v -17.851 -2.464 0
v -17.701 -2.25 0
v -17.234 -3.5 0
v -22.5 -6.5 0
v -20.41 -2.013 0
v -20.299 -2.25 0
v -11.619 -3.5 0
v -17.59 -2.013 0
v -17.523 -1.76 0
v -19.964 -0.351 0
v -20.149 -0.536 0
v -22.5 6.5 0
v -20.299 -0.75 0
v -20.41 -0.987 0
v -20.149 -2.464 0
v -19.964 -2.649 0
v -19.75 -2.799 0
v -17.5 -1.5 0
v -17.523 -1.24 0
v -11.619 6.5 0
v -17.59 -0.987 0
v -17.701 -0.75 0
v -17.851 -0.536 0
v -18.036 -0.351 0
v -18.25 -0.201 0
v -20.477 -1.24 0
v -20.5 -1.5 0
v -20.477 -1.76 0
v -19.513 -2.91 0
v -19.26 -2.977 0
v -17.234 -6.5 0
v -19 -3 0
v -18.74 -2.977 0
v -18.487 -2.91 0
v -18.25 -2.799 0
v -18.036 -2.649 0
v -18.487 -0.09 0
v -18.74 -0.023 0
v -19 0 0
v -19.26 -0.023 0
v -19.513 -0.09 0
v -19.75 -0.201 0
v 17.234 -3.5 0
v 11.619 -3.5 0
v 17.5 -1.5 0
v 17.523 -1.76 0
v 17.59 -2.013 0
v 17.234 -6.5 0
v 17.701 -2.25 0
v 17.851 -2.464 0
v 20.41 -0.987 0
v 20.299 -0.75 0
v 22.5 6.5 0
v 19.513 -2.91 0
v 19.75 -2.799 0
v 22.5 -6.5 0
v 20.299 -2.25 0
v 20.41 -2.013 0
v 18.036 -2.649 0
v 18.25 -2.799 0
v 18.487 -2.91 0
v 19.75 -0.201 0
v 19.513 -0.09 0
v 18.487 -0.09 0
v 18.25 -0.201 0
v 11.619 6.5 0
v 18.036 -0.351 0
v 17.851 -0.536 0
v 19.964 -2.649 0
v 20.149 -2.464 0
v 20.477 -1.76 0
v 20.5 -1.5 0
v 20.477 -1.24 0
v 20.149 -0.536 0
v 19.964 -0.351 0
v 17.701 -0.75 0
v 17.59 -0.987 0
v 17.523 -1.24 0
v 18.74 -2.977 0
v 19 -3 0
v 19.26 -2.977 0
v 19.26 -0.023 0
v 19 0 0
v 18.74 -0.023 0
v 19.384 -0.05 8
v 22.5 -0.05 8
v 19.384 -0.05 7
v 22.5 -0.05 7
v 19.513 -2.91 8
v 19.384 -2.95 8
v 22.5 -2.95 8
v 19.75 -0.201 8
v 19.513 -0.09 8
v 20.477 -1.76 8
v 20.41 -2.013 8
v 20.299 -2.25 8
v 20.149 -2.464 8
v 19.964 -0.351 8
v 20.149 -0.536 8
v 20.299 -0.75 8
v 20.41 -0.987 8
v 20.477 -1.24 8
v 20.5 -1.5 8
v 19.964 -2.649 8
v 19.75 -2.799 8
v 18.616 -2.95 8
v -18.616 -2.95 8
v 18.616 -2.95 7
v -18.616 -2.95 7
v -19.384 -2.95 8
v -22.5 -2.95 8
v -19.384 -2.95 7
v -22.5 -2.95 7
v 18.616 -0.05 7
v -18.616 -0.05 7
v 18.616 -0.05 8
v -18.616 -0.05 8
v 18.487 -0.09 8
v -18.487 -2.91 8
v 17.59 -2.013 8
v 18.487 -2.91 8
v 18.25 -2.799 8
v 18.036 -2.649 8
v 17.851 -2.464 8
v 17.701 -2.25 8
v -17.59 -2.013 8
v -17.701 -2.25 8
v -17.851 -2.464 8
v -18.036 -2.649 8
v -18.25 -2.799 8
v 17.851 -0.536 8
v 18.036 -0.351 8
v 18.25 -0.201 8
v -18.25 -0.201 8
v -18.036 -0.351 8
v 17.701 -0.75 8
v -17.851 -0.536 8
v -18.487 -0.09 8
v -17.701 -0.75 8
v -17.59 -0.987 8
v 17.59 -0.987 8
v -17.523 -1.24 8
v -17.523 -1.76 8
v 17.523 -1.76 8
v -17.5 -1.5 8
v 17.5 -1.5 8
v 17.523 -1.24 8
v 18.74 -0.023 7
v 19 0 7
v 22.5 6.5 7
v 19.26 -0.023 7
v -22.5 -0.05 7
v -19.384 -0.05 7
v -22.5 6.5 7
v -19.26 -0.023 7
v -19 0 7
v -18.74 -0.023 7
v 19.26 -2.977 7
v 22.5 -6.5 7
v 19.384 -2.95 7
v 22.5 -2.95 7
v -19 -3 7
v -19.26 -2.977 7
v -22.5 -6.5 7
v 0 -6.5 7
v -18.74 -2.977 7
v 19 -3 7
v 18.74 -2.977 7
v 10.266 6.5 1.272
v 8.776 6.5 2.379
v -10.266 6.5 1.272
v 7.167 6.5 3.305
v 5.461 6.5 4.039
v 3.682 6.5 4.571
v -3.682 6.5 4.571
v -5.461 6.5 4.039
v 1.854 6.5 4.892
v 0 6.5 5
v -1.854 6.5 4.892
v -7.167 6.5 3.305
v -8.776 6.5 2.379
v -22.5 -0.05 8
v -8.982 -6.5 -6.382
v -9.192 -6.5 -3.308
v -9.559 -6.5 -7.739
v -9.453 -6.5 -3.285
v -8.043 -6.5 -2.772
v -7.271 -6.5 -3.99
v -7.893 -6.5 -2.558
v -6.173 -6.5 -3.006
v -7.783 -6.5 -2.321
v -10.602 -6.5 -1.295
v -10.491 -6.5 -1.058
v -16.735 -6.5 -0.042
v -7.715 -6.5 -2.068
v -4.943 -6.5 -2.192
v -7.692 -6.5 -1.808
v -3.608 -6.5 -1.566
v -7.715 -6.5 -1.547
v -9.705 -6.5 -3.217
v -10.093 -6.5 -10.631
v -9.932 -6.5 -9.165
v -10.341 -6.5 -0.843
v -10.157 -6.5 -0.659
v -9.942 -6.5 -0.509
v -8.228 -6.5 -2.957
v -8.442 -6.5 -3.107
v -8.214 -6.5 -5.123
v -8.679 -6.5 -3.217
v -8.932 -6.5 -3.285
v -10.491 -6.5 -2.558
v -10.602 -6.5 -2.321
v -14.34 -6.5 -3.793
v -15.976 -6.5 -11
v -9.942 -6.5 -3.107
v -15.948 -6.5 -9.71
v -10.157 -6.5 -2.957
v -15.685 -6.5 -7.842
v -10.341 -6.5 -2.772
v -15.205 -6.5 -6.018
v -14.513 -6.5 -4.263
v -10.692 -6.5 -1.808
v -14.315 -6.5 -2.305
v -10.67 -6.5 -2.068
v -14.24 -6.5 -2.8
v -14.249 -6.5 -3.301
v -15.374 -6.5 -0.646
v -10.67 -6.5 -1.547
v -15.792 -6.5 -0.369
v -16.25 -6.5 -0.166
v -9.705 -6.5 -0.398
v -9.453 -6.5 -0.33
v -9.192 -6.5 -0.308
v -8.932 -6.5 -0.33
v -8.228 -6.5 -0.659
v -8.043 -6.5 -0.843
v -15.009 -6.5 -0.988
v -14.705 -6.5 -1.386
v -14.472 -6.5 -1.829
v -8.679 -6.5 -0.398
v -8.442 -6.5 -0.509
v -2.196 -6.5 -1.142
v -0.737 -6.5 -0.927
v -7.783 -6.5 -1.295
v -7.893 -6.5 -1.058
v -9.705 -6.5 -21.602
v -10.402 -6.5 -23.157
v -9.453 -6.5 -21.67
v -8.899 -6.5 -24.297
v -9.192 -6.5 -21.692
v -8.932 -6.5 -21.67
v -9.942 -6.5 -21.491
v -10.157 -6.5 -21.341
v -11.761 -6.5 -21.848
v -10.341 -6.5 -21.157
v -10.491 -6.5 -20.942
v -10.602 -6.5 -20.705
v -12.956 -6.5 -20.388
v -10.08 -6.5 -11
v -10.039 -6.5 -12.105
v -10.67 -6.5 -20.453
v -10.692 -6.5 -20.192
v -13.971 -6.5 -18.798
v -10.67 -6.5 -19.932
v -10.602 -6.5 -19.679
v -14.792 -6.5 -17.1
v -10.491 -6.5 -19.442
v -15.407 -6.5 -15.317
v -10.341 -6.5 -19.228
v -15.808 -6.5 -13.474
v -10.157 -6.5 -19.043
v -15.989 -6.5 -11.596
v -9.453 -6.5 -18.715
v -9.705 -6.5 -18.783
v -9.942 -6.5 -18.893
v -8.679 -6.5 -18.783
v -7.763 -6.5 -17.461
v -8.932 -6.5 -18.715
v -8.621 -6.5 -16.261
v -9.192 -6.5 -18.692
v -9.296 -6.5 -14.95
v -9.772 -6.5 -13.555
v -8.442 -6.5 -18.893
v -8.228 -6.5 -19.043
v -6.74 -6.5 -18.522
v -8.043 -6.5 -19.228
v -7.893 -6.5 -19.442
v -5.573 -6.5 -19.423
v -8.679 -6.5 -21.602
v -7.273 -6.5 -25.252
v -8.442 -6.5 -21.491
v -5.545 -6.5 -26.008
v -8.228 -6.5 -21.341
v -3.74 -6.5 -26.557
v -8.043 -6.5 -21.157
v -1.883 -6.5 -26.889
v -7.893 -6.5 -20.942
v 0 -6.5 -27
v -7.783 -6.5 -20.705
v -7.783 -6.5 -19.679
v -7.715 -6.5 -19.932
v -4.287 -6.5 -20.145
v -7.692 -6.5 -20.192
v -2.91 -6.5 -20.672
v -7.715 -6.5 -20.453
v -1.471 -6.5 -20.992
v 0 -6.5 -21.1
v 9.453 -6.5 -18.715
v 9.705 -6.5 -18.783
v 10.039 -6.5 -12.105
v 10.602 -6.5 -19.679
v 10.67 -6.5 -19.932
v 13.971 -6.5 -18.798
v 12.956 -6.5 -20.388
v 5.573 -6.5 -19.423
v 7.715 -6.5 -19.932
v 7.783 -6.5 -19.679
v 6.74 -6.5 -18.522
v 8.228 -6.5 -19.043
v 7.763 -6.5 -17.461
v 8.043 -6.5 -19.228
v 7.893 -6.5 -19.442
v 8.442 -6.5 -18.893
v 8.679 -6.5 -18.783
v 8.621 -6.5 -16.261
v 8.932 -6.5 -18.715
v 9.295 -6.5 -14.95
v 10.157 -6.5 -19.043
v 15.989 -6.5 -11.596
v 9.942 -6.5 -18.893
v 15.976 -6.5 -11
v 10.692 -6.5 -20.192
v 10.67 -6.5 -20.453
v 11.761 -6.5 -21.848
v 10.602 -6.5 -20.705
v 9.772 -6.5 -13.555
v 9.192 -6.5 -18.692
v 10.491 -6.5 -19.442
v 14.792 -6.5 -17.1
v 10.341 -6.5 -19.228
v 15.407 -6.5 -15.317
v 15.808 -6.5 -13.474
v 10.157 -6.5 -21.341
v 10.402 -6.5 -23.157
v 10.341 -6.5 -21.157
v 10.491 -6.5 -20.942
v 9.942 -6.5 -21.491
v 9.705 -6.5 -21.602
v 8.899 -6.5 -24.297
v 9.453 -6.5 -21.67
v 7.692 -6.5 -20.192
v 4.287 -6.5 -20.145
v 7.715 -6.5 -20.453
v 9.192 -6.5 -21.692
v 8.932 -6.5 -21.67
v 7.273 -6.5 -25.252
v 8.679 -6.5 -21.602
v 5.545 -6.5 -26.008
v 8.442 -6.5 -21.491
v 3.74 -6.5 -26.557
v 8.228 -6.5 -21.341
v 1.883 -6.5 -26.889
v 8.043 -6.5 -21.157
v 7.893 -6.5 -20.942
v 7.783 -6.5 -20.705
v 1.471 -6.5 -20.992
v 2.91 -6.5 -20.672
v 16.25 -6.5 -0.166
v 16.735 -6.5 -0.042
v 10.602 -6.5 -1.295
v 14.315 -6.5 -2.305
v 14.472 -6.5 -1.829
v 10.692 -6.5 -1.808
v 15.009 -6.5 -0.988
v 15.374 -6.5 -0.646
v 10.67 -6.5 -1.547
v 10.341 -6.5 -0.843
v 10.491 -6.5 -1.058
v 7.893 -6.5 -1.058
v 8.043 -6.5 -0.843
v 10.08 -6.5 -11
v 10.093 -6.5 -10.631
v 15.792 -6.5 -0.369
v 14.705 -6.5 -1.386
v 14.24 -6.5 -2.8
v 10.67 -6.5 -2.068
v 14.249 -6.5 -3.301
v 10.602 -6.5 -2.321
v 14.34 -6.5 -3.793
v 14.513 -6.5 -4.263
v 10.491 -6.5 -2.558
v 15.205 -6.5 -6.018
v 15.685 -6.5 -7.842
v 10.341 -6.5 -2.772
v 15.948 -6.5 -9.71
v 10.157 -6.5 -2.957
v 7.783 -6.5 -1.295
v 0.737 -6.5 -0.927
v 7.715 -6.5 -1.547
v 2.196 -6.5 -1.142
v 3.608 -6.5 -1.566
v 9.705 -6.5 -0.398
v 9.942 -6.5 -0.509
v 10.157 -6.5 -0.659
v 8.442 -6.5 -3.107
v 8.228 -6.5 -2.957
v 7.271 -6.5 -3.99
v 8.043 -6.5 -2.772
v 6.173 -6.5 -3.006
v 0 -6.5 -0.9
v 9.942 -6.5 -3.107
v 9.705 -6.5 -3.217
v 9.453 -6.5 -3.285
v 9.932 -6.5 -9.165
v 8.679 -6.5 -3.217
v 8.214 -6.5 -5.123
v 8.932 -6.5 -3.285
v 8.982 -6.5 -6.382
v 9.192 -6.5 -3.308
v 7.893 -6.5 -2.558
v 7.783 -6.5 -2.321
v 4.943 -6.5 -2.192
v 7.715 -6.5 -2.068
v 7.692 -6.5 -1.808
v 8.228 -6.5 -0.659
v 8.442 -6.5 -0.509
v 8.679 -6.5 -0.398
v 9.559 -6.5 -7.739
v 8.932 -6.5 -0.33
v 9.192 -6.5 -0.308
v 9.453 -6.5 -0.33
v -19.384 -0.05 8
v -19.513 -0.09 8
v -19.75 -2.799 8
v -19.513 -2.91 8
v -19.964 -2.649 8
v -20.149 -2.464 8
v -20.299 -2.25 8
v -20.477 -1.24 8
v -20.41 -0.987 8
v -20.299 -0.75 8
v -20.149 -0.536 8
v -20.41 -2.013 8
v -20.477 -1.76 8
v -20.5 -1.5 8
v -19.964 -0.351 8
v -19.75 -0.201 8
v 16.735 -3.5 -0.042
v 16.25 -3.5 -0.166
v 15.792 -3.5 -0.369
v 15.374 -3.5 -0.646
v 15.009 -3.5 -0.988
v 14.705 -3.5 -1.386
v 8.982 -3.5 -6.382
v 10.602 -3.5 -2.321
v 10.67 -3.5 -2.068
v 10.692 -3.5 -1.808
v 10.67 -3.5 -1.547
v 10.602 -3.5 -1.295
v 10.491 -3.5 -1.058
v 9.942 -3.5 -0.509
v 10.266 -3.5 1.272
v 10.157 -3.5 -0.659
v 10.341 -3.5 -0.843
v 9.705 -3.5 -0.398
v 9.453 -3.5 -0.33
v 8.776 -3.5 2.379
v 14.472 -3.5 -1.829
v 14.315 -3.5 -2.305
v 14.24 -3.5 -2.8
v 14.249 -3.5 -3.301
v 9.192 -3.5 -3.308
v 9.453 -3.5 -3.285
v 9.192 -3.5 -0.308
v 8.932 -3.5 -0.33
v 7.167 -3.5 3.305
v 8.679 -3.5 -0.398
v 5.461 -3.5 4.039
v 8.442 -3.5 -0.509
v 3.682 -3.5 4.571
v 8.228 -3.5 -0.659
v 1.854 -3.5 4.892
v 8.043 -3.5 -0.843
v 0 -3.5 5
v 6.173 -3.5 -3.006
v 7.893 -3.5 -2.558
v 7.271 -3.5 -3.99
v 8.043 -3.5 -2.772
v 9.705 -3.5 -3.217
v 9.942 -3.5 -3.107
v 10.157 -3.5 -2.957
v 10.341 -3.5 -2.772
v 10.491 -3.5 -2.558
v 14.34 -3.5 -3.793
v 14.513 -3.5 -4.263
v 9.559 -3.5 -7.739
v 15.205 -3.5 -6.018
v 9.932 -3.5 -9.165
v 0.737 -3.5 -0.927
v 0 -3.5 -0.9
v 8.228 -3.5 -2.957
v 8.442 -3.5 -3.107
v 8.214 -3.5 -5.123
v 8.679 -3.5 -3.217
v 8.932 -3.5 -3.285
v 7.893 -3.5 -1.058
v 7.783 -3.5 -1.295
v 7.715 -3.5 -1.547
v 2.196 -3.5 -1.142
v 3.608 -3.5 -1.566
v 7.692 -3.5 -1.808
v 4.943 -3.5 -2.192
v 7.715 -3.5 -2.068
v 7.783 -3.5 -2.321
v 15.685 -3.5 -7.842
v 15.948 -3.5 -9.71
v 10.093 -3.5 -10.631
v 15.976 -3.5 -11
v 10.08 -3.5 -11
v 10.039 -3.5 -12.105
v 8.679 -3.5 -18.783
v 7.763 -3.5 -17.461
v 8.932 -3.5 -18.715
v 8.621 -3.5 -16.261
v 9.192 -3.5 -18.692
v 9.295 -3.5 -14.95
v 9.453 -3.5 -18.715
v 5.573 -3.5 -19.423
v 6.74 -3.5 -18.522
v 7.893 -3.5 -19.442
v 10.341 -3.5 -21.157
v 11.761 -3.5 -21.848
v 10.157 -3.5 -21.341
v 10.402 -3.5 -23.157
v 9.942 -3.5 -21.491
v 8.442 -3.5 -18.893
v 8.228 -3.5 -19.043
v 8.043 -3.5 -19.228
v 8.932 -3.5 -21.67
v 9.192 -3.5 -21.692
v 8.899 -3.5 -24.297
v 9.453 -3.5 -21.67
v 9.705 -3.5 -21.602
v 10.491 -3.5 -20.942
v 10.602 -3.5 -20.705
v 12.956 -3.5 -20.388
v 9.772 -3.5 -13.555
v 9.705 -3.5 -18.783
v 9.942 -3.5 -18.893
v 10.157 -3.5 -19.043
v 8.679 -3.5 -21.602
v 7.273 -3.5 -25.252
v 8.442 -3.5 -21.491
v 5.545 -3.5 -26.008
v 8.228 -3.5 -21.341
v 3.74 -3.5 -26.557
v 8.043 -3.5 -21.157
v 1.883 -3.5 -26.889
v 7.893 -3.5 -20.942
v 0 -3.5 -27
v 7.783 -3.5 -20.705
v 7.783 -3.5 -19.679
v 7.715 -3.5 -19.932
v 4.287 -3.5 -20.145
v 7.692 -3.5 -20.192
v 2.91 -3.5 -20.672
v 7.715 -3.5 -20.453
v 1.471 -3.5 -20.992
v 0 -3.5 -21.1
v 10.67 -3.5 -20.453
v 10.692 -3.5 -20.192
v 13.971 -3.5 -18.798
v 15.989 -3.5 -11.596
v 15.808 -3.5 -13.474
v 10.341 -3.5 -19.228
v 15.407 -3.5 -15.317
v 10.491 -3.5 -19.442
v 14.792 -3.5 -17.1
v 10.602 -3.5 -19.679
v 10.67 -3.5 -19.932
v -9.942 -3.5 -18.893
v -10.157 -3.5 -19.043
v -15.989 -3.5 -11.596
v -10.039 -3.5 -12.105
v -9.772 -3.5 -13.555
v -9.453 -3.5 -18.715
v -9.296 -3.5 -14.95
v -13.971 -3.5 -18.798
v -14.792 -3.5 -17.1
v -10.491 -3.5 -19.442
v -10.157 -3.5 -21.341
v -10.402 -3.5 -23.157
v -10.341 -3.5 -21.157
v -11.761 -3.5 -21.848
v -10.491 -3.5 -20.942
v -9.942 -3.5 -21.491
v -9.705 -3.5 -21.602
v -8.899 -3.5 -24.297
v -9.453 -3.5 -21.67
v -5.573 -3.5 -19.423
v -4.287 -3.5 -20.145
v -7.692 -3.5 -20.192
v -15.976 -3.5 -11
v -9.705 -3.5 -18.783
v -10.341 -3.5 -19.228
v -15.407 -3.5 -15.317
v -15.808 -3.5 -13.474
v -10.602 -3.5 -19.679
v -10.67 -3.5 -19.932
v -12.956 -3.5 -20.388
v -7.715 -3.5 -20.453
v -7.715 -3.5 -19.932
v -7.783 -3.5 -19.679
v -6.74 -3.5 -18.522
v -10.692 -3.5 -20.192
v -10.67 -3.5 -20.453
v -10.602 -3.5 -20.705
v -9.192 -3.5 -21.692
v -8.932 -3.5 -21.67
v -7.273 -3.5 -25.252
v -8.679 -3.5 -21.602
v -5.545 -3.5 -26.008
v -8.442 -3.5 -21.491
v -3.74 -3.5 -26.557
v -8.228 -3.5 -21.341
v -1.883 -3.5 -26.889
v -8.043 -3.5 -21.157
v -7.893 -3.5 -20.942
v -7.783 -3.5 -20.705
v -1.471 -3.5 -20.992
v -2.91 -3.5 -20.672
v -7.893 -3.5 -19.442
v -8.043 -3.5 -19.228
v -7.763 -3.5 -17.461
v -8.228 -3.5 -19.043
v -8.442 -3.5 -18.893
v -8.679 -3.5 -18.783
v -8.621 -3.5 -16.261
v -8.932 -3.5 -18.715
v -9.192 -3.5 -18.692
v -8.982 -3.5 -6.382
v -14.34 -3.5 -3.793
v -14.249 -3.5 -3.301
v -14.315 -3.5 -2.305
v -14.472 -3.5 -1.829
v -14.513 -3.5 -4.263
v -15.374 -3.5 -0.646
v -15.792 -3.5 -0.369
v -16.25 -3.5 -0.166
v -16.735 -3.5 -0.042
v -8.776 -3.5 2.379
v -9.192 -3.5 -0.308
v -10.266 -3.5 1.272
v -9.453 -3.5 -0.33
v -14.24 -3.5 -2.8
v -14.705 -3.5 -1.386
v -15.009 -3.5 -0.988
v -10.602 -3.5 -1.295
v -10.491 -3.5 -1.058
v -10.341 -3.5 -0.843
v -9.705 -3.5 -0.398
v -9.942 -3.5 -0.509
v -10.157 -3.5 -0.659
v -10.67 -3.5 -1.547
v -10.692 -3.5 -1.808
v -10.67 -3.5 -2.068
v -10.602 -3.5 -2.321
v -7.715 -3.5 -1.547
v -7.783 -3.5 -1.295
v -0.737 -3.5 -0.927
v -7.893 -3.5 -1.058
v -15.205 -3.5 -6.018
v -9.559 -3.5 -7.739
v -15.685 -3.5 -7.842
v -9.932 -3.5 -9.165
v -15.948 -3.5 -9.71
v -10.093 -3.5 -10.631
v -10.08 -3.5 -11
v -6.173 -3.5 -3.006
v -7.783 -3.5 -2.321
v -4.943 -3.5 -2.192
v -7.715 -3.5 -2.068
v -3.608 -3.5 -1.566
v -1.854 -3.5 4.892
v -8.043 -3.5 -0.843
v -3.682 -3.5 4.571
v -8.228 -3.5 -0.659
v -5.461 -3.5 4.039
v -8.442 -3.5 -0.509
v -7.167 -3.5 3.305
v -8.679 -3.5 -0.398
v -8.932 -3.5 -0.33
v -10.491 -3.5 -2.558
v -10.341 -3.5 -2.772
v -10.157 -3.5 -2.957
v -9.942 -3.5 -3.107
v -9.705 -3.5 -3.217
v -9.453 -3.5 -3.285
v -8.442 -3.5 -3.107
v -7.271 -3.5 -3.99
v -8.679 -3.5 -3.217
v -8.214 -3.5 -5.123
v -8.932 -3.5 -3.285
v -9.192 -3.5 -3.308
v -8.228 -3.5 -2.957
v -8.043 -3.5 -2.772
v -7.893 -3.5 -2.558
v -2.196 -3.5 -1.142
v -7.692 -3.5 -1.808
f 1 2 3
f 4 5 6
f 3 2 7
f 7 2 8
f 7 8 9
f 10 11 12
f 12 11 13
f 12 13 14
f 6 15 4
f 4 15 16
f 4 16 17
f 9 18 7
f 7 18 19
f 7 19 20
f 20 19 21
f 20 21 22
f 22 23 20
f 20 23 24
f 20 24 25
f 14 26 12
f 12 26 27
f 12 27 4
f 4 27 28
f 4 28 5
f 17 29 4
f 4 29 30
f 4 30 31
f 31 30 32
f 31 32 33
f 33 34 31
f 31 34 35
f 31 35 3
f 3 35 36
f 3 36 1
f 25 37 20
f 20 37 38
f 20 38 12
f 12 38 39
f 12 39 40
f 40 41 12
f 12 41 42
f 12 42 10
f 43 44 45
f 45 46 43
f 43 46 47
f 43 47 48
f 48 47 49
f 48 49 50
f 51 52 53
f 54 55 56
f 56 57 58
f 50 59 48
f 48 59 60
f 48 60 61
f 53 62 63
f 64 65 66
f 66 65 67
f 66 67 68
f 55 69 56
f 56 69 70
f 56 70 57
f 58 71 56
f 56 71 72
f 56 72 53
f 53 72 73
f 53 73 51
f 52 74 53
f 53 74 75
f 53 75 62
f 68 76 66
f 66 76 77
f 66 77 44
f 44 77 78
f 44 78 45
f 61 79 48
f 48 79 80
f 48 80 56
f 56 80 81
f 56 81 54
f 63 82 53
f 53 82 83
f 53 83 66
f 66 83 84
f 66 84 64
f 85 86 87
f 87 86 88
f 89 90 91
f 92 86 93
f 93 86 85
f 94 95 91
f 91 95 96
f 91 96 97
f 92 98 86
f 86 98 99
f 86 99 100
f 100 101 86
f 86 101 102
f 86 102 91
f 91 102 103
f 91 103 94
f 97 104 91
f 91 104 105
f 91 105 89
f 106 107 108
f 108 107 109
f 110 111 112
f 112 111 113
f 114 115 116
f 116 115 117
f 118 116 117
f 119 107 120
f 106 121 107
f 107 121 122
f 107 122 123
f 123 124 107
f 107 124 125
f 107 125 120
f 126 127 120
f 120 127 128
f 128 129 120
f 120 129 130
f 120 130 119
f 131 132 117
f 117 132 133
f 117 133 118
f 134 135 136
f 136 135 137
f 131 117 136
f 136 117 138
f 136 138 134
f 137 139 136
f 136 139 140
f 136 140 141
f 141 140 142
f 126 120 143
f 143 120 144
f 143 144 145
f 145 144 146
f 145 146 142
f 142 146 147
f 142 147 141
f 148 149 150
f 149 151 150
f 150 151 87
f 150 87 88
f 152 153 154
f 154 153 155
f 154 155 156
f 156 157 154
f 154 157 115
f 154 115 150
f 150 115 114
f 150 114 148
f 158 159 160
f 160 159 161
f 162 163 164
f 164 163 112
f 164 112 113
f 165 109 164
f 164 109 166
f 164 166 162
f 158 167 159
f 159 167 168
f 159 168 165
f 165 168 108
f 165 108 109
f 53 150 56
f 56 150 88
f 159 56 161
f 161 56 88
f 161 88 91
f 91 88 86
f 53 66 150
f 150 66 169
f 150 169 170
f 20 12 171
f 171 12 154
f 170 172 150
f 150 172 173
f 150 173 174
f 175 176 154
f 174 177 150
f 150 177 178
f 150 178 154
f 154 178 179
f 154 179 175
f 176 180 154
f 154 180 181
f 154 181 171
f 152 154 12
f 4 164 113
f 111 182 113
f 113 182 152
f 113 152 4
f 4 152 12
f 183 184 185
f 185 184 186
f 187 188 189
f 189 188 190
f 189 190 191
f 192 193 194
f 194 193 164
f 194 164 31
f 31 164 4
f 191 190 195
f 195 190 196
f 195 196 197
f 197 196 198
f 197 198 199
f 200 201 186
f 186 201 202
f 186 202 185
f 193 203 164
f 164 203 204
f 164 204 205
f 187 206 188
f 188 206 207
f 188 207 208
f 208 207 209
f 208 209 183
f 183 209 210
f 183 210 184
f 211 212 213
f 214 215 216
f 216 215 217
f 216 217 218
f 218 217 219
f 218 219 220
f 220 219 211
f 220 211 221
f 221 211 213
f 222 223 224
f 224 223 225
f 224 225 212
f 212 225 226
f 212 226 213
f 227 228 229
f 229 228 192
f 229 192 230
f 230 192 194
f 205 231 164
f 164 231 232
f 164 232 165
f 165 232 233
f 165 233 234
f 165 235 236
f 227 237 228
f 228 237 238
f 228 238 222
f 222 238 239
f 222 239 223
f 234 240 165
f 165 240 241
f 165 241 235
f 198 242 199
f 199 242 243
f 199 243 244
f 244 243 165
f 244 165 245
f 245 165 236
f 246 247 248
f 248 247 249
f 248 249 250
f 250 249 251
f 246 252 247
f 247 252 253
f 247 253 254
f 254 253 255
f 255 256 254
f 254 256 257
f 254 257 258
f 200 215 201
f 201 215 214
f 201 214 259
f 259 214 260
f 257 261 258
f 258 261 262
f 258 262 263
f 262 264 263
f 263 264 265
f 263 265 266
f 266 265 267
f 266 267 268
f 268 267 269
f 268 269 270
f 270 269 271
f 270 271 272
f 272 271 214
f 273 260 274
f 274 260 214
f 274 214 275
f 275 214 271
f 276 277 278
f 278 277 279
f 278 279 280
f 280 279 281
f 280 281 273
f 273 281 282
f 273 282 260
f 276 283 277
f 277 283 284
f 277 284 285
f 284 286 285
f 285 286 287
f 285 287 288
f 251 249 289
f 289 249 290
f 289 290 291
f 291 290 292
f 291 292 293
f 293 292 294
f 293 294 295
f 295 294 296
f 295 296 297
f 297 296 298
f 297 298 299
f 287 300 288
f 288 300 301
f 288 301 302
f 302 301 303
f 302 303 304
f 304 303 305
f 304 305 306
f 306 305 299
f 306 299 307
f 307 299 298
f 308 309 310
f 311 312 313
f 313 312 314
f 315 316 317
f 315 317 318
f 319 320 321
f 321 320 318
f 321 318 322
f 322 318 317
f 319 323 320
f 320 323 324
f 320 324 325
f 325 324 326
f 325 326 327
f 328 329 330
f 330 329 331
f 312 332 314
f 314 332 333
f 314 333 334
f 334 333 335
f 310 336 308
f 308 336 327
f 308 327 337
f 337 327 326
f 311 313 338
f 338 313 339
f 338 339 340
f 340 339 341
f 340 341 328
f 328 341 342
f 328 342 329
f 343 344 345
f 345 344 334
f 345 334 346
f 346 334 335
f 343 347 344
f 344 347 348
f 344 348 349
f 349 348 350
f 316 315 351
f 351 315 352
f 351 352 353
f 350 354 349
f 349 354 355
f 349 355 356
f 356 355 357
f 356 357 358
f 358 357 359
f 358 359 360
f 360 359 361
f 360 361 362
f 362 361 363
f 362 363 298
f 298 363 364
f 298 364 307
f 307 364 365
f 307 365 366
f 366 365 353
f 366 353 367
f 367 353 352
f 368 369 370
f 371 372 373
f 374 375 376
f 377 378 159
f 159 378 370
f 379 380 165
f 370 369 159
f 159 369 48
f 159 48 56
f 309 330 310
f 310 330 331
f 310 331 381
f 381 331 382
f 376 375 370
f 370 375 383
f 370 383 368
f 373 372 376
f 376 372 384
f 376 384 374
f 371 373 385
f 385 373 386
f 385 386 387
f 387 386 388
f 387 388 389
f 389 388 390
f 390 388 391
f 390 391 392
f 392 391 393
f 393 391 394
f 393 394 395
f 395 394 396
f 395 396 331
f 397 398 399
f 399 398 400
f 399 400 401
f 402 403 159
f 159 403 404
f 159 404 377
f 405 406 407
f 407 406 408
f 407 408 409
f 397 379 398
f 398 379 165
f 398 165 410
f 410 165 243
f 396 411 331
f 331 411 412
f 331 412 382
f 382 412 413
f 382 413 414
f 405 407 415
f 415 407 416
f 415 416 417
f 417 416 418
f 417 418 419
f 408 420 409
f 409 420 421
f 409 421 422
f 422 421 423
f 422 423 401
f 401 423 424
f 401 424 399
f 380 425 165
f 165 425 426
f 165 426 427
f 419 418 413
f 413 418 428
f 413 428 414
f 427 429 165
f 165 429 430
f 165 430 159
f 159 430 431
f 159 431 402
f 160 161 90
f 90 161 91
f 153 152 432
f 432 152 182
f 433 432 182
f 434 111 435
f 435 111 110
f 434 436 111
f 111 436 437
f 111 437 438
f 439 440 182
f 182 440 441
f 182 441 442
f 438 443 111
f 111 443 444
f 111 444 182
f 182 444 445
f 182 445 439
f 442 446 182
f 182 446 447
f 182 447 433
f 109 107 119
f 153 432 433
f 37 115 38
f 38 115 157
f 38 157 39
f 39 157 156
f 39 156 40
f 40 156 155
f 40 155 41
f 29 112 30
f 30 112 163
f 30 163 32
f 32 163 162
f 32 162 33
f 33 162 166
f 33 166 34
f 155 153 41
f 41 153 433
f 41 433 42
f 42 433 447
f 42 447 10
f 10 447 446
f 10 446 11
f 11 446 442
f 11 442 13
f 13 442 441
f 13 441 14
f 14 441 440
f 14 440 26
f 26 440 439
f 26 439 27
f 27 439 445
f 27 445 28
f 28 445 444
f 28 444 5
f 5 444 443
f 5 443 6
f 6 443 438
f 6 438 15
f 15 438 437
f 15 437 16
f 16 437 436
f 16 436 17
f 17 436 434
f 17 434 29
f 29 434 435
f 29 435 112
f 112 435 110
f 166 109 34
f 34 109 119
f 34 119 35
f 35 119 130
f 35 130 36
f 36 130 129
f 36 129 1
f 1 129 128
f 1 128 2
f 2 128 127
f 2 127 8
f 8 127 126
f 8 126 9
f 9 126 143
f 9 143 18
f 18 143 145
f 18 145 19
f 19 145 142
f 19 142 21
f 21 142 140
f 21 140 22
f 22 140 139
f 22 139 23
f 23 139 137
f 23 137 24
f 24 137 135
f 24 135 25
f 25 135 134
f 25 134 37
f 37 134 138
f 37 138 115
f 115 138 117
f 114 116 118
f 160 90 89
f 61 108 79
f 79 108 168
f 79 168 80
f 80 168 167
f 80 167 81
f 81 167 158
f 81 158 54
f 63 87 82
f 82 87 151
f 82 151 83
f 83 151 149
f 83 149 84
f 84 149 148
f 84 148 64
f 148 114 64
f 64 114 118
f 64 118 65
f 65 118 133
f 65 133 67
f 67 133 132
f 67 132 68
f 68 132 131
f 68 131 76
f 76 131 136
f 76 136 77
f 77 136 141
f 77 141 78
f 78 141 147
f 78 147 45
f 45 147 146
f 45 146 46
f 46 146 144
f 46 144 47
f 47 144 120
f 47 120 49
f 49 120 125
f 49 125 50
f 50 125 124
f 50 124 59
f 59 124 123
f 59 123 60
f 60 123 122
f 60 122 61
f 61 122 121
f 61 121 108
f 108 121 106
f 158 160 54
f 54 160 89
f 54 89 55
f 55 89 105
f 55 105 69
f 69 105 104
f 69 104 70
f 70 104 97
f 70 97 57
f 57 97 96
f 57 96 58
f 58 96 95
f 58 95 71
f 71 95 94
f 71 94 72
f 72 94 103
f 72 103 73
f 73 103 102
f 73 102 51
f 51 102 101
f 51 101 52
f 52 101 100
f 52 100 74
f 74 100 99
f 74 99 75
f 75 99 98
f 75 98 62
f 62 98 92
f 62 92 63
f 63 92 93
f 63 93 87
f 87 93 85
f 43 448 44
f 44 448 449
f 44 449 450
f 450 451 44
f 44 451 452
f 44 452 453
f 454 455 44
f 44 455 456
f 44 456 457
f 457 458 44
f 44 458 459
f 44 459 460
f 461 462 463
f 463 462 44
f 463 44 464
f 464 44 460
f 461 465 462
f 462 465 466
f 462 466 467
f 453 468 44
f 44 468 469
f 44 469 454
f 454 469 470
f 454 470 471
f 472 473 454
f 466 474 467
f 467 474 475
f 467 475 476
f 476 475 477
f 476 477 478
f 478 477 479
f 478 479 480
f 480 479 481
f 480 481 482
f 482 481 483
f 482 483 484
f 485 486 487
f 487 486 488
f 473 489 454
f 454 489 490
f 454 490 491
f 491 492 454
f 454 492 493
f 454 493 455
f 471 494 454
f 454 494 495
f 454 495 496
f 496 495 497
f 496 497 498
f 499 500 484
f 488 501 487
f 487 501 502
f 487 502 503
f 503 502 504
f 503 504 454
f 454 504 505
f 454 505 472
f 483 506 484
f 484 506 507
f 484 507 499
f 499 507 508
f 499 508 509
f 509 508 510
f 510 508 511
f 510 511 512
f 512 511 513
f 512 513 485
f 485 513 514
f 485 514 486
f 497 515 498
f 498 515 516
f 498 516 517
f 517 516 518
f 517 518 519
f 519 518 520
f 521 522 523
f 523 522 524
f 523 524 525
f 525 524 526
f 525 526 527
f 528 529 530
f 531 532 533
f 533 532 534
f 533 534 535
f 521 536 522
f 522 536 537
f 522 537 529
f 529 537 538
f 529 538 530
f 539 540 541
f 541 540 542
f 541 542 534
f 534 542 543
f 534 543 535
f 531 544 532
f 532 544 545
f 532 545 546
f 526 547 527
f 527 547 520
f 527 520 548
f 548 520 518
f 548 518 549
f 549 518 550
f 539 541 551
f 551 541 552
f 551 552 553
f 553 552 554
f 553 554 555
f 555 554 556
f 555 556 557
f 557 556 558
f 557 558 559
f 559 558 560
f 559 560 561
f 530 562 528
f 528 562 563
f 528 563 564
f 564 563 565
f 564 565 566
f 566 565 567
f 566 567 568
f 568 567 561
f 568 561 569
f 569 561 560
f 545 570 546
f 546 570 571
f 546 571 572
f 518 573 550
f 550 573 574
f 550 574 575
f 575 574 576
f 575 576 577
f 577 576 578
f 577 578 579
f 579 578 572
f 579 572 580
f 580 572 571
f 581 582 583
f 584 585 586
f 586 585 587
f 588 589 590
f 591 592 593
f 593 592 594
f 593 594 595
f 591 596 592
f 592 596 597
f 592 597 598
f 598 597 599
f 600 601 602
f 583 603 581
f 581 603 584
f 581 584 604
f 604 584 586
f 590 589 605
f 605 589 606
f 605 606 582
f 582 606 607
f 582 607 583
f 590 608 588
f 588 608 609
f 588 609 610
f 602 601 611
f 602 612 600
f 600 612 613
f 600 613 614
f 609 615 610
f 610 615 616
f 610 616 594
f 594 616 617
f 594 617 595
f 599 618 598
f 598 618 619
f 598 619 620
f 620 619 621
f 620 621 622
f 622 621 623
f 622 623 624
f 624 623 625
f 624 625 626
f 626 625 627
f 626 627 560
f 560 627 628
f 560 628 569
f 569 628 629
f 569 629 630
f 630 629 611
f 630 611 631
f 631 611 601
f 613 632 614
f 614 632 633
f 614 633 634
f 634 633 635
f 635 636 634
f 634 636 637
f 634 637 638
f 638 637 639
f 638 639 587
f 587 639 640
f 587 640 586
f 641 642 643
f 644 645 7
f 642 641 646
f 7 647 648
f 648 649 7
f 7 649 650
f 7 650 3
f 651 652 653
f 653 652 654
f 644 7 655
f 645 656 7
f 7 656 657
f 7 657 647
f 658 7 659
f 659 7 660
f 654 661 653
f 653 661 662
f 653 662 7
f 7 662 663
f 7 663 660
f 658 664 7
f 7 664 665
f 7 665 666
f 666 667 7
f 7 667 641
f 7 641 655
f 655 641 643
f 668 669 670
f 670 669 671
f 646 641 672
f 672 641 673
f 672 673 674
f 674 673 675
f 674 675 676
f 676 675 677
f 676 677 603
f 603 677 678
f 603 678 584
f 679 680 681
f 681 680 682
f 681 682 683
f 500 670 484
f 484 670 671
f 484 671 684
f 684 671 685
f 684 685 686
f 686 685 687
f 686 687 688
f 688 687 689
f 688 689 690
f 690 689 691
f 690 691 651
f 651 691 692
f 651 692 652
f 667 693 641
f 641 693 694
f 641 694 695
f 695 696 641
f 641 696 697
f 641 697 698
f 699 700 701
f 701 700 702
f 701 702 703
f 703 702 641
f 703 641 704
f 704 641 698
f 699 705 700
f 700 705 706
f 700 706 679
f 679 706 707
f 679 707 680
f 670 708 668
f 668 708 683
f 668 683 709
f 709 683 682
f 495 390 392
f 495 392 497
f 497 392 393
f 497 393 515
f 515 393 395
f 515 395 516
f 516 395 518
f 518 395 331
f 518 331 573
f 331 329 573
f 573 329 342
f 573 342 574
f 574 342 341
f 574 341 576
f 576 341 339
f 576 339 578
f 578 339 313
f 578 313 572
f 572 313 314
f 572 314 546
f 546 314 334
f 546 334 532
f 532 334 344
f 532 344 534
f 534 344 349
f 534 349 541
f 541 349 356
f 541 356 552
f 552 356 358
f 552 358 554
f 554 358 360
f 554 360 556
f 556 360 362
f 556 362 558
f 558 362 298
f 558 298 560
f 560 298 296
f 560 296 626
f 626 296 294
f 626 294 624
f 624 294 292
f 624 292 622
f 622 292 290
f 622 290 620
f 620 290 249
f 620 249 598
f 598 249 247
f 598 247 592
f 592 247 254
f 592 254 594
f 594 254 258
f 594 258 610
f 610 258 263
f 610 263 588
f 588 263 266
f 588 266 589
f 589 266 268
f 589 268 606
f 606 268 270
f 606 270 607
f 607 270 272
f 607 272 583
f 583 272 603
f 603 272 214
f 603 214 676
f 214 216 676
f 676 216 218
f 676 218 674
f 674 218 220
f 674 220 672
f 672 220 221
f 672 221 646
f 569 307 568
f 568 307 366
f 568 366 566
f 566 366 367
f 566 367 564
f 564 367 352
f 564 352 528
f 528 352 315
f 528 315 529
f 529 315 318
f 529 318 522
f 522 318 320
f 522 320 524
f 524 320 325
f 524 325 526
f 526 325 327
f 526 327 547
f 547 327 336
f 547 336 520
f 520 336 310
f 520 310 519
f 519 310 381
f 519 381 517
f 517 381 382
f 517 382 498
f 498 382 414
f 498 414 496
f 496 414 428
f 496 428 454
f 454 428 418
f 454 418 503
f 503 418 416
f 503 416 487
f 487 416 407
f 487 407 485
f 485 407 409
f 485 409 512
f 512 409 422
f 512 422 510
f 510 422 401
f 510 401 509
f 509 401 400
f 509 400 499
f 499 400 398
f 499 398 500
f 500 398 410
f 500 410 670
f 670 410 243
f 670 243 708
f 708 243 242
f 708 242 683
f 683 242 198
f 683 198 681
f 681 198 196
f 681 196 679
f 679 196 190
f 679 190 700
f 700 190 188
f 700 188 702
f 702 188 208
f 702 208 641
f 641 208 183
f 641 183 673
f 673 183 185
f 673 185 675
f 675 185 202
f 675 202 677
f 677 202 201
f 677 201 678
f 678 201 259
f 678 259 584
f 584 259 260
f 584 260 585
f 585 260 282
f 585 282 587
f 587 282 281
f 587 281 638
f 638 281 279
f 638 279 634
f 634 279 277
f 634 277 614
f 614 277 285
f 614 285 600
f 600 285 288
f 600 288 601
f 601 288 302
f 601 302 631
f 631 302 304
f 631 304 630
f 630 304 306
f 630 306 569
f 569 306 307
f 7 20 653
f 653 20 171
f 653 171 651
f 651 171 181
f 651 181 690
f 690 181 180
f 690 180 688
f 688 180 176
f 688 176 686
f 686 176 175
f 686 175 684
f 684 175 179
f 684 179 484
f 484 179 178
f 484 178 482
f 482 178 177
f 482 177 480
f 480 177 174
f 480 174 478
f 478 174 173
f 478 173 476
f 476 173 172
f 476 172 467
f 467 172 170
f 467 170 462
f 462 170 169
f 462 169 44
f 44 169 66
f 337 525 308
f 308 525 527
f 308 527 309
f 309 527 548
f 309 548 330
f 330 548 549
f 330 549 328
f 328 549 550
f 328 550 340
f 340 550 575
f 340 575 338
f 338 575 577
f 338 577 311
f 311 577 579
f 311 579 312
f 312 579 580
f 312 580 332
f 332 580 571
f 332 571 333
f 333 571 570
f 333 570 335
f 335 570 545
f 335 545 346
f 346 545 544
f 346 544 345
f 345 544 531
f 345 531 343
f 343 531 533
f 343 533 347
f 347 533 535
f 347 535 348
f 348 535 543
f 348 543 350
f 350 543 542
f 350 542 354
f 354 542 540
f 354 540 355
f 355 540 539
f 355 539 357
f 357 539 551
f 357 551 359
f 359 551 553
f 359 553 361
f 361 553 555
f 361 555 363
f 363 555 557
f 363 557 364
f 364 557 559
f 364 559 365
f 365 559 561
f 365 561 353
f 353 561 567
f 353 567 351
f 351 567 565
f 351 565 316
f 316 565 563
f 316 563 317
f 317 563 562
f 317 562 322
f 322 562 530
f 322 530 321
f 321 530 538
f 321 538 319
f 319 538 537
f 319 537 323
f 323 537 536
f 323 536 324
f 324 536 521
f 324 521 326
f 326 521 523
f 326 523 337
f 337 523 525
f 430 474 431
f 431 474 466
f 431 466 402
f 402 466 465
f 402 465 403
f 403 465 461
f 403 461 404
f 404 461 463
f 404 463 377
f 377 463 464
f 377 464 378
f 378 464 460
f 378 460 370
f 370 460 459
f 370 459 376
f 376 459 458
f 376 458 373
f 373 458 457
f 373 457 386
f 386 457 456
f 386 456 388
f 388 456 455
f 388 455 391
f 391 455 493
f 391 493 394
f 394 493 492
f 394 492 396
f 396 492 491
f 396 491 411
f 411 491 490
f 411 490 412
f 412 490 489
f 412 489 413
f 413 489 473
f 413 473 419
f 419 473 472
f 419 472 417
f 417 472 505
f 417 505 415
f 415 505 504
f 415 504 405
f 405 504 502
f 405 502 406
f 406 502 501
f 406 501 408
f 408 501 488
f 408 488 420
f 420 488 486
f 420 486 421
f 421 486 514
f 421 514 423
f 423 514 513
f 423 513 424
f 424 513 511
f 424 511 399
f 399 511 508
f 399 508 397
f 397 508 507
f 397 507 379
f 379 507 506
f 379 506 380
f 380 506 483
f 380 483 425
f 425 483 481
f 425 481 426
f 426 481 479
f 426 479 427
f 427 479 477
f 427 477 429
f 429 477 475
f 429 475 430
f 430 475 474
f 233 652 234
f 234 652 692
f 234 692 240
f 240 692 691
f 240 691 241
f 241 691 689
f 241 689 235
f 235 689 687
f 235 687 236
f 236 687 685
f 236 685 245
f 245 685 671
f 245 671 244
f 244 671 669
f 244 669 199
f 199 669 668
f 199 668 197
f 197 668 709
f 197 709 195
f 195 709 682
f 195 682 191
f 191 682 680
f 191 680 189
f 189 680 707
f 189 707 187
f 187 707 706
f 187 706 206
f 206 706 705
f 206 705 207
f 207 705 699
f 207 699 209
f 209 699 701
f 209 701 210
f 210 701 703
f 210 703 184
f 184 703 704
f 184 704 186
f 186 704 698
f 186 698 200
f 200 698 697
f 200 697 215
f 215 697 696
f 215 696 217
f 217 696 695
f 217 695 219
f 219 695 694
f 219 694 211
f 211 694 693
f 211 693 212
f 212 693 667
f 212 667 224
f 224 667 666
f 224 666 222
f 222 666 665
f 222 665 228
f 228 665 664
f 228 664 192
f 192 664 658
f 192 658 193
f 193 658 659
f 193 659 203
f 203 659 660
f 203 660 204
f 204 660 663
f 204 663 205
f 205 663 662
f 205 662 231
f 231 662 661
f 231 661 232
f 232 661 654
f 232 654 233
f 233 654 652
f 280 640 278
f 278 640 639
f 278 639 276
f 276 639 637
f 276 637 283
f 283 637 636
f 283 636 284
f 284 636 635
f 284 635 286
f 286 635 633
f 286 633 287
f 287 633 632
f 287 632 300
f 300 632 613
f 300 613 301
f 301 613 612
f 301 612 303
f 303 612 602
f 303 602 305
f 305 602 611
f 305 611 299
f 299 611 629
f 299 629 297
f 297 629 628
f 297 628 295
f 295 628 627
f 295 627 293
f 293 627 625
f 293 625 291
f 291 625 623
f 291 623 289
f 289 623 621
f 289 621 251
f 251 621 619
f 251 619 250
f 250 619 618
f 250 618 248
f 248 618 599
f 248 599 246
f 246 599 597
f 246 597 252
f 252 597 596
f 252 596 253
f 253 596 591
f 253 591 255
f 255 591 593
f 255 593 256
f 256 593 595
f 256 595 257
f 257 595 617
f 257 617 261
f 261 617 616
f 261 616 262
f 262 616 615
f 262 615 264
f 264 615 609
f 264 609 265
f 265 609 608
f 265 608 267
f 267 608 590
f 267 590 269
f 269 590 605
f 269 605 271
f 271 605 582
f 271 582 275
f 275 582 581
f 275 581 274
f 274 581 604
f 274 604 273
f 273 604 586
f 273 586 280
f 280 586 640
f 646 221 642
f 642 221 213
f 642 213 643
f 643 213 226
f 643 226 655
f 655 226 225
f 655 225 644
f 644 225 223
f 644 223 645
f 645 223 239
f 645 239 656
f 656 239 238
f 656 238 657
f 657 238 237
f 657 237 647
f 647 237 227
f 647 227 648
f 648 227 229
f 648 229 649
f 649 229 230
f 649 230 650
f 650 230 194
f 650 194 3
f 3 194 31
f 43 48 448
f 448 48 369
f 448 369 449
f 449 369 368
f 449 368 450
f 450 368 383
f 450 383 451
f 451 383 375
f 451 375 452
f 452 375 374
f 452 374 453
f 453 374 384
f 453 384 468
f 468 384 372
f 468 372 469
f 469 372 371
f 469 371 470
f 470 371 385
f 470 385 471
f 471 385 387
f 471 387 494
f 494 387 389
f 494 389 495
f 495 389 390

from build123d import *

# Parameters (mm, degrees)
SKETCH1_W           = 45
SKETCH1_H           = 13
MAIN_DEPTH          = 7
SKETCH4_W           = 45
SKETCH4_H           = 2.9
MAKERBEAMFIX_DEPTH  = 1
SKETCH5_R           = 1.5
MAKERBEAMHOLE_DEPTH = 9
SKETCH6_R           = 16
SKETCH6_R_2         = 10.1
MOTORFIX_DEPTH      = 3
SKETCH7_R           = 16
MOTORHOLE_DEPTH     = 10
SKETCH8_R           = 1.5
MOTORFIXHOLE_DEPTH  = 14
FILLET1_R           = 3


with BuildPart() as part:
    # Sketch1 → Main (new body)
    with BuildSketch(Plane.XY):
        Rectangle(SKETCH1_W, SKETCH1_H)
    extrude(amount=MAIN_DEPTH)

    # Sketch4 → MakerBeamFix (add)
    with BuildSketch(Plane.XY.offset(7)):
        with Locations((0, -1.5)):
            Rectangle(SKETCH4_W, SKETCH4_H)
    extrude(amount=MAKERBEAMFIX_DEPTH)

    # Sketch5 → MakerBeamHole (cut, through all)
    with BuildSketch(Plane.XY.offset(8)):
        with Locations((-19, -1.5)):
            Circle(SKETCH5_R)
        with Locations((19, -1.5)):
            Circle(SKETCH5_R)
    extrude(amount=-MAKERBEAMHOLE_DEPTH, mode=Mode.SUBTRACT)

    # Sketch6 → MotorFix (add)
    with BuildSketch(Plane(origin=(0, -6.5, 0), x_dir=(1, 0, 0), z_dir=(0, 1, 0))):
        with Locations((0, 11)):
            Circle(SKETCH6_R)
        with Locations((0, 11)):
            Circle(SKETCH6_R_2, mode=Mode.SUBTRACT)
    extrude(amount=MOTORFIX_DEPTH)

    # Sketch7 → MotorHole (cut)
    with BuildSketch(Plane(origin=(0, 6.5, 0), x_dir=(-1, 0, 0), z_dir=(0, -1, 0))):
        with Locations((0, 11)):
            Circle(SKETCH7_R)
    extrude(amount=MOTORHOLE_DEPTH, mode=Mode.SUBTRACT)

    # Sketch8 → MotorFixHole (cut, through all)
    with BuildSketch(Plane(origin=(0, 6.5, 0), x_dir=(1, 0, 0), z_dir=(0, 1, 0))):
        with Locations((9.192388155, 20.192388155)):
            Circle(SKETCH8_R)
        with Locations((-9.192388155, 20.192388155)):
            Circle(SKETCH8_R)
        with Locations((-9.192388155, 1.807611845)):
            Circle(SKETCH8_R)
        with Locations((9.192388155, 1.807611845)):
            Circle(SKETCH8_R)
    extrude(amount=-MOTORFIXHOLE_DEPTH, mode=Mode.SUBTRACT)

    # Fillet1
    fillet1_edges = [part.edges().sort_by_distance(p)[0] for p in [
        (-11.618950039, -5, 0),
        (11.618950039, -5, 0),
    ]]
    fillet(fillet1_edges, radius=FILLET1_R)


solid = part.part
